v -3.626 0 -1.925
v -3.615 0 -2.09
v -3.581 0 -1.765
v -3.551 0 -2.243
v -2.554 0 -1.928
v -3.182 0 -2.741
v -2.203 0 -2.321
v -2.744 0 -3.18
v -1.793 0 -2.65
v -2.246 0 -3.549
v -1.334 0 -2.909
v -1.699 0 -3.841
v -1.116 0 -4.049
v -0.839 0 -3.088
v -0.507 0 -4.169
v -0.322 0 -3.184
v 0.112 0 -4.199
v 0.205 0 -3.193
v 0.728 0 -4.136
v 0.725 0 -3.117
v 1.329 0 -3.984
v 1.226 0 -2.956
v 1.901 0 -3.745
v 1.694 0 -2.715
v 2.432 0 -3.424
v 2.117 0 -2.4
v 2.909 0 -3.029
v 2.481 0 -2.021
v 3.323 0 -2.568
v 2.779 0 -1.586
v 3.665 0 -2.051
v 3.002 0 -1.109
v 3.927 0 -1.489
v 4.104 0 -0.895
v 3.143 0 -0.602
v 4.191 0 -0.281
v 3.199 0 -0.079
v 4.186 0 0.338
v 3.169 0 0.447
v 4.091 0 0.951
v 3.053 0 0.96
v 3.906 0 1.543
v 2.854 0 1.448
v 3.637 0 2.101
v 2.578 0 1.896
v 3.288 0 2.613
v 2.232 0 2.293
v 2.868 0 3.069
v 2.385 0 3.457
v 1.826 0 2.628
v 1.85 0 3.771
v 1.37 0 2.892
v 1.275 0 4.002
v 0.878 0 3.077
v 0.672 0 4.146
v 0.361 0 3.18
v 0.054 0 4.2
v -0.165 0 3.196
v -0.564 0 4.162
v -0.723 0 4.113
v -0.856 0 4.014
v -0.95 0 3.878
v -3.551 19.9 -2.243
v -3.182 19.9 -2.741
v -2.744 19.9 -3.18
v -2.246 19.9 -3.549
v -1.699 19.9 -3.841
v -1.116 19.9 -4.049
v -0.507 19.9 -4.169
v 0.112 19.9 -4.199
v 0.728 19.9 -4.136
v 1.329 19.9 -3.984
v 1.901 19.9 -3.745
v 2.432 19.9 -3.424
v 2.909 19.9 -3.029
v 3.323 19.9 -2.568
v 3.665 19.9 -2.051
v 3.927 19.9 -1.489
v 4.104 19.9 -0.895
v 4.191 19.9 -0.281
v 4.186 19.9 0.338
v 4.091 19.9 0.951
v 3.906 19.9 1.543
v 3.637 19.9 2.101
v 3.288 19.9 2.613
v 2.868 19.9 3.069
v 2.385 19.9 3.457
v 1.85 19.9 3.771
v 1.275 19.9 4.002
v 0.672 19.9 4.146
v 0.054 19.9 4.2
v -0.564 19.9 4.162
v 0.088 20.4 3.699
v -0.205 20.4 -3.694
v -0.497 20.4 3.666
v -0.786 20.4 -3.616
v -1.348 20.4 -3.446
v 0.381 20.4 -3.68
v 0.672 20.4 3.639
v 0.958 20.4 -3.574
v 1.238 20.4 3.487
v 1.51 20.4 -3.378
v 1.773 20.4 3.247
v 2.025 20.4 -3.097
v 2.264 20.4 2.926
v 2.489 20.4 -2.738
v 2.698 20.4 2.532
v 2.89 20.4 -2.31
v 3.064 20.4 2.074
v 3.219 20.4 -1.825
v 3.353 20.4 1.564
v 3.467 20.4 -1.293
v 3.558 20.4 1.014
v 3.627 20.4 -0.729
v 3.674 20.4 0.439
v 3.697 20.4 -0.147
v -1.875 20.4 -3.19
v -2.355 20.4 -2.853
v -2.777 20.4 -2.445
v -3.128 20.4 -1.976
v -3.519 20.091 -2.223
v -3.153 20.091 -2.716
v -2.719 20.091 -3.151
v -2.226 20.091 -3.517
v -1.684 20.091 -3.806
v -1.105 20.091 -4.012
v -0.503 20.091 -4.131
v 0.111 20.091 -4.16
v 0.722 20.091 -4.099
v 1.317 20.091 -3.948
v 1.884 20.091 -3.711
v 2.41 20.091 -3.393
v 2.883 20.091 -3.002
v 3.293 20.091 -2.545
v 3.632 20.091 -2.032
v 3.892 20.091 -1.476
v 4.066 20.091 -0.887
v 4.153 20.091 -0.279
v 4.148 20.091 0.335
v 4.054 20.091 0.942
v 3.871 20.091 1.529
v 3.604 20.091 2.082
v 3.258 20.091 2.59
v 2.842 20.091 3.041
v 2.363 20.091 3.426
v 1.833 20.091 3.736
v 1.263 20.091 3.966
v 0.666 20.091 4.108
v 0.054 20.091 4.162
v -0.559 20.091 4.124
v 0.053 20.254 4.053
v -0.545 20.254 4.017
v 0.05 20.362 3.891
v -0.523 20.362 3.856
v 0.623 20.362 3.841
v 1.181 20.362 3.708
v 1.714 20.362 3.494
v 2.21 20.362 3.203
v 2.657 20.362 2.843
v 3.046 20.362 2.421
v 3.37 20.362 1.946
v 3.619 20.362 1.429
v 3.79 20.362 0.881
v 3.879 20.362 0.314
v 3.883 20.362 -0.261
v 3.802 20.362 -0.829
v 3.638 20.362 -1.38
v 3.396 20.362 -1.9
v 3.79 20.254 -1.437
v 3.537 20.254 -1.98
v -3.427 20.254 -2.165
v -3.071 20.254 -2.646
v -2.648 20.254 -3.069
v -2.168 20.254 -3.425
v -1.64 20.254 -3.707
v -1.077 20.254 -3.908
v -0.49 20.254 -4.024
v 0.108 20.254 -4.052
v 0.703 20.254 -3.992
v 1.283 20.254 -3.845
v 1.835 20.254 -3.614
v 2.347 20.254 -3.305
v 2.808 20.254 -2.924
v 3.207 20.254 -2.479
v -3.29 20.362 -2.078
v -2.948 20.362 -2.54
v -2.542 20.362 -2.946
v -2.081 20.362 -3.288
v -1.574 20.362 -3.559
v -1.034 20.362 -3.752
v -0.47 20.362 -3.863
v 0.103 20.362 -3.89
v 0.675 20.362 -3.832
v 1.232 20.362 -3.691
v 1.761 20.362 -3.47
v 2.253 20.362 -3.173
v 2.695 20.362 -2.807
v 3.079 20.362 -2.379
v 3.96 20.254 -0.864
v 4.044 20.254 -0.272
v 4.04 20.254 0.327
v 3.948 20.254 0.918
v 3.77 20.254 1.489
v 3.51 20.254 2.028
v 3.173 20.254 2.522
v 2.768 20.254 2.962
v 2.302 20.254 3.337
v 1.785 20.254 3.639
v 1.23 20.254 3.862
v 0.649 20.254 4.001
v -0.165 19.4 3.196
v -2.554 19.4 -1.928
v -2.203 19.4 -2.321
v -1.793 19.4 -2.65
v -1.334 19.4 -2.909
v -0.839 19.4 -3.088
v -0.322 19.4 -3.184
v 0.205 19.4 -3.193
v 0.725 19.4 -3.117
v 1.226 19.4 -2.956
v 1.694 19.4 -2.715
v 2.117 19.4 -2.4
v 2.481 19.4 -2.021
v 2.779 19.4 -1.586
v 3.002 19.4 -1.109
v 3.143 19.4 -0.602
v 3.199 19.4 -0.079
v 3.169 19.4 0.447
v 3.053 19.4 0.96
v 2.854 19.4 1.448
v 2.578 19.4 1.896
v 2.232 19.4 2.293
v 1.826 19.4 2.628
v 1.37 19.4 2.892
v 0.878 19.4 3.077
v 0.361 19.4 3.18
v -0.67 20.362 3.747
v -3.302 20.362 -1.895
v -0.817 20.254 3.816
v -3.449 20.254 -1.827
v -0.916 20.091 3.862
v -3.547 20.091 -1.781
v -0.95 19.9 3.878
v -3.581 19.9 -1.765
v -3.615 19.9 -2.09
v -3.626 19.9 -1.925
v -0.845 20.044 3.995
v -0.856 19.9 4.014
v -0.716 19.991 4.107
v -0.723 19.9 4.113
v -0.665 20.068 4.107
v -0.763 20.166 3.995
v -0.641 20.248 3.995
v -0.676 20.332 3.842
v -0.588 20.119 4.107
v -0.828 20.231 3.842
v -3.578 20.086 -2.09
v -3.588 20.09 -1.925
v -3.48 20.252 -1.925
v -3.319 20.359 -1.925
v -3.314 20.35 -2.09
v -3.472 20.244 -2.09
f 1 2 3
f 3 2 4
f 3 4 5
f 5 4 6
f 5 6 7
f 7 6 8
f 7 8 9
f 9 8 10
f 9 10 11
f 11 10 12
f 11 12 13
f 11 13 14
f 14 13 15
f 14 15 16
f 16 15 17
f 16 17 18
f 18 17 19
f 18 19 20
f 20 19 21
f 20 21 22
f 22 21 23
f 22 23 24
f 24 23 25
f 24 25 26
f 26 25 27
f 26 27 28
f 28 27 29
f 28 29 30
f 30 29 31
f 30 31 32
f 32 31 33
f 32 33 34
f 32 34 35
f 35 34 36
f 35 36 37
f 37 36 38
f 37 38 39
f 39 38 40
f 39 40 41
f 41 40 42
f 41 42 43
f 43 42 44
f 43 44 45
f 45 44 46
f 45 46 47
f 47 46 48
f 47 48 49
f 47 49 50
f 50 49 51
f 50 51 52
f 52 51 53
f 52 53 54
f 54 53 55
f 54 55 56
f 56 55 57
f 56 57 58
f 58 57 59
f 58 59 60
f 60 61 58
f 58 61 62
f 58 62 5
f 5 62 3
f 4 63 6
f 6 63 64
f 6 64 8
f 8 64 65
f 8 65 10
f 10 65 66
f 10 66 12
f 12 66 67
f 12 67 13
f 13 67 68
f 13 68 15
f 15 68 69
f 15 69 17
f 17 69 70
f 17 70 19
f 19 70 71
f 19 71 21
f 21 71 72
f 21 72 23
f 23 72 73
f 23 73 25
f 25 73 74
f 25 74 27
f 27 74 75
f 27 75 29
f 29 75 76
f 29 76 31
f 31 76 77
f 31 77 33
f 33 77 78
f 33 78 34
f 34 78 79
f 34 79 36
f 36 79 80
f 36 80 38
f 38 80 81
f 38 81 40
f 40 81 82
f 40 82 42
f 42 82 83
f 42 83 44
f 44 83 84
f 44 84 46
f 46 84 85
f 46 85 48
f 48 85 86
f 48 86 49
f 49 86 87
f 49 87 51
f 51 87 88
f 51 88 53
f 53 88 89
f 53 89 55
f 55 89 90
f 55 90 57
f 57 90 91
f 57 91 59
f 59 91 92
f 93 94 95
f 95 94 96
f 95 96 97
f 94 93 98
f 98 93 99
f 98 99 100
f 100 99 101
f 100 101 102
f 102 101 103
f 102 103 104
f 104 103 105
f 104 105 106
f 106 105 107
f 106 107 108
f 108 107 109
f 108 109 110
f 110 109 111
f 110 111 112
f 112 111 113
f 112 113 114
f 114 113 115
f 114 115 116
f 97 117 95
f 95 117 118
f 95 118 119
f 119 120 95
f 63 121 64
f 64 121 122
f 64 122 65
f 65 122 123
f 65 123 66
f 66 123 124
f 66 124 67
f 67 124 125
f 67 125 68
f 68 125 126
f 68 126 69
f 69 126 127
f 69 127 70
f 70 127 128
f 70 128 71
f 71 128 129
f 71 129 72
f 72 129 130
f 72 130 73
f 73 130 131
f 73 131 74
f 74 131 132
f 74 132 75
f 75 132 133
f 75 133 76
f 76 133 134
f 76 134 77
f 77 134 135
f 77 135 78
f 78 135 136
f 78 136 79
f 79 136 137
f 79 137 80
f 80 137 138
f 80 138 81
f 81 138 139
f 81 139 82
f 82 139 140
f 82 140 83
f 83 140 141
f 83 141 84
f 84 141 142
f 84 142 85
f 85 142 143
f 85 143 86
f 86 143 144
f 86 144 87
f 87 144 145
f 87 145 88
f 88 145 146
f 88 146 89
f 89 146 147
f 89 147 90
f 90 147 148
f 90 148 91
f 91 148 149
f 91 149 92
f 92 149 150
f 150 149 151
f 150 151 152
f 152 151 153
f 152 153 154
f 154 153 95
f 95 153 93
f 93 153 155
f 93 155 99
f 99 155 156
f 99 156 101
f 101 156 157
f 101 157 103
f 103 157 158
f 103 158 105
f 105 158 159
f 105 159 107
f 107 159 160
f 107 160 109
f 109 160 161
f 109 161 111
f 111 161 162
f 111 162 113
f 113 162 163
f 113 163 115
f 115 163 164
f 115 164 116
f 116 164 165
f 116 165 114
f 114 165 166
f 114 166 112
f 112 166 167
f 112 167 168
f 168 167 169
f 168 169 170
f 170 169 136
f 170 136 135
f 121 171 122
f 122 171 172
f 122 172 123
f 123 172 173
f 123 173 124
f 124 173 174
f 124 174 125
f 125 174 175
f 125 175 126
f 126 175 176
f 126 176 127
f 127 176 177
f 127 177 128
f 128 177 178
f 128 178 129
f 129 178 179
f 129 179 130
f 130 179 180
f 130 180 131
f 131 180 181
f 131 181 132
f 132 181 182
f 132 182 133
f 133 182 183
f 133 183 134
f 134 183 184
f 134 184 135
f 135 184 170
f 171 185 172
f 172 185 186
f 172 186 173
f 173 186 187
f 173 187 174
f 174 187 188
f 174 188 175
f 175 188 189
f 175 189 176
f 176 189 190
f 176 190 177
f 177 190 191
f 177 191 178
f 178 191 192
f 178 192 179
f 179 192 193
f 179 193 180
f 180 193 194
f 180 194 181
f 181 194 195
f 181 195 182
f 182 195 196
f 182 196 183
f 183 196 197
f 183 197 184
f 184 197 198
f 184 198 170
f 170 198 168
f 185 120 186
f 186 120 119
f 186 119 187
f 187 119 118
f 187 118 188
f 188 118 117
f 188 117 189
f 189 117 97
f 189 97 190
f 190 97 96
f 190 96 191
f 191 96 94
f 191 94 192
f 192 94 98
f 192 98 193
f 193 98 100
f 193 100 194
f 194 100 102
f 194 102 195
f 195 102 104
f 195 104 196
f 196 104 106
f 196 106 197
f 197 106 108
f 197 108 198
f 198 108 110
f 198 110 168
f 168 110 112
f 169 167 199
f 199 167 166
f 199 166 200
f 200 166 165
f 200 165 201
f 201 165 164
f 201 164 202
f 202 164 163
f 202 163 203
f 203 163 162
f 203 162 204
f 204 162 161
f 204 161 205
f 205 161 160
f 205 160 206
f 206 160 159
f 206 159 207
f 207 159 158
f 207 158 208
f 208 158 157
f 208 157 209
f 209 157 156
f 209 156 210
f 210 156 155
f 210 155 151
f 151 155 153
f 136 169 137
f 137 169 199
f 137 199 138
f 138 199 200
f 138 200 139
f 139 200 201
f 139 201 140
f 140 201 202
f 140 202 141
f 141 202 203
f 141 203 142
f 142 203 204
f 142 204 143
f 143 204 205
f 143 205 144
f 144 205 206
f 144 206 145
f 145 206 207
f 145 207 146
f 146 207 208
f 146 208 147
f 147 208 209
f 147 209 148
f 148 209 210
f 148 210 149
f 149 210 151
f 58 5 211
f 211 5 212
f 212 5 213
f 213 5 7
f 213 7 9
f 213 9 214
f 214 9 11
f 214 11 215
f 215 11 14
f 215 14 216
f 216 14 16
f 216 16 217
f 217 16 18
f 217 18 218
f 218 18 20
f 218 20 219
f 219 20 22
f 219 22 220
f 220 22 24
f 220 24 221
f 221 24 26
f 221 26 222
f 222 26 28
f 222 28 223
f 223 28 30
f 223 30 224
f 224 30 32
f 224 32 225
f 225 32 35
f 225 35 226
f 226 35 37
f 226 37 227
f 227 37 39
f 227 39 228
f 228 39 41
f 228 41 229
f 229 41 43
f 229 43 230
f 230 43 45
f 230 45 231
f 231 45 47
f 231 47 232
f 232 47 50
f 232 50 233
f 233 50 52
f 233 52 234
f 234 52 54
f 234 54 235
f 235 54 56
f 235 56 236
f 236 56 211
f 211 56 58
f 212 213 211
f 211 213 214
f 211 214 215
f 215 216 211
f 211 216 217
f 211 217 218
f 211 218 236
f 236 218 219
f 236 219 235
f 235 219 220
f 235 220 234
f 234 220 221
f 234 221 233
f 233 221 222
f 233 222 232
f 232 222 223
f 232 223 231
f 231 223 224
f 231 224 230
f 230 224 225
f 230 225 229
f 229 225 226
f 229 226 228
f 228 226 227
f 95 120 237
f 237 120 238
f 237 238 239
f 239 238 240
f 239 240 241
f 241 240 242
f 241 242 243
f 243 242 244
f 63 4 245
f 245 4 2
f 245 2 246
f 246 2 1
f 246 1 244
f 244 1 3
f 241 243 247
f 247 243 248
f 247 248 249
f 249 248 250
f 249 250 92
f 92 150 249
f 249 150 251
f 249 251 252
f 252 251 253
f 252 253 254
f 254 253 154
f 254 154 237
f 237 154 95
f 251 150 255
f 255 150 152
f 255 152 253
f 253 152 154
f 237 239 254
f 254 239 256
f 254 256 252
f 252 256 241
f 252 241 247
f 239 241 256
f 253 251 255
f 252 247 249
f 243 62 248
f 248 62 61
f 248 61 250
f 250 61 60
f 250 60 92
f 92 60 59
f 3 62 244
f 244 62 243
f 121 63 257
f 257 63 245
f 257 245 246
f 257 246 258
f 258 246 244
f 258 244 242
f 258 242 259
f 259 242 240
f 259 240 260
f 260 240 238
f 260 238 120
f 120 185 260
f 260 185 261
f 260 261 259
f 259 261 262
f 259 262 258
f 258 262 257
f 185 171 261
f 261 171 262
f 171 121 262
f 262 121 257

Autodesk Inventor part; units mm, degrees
ref_plane "YZ Plane" through (0, 0, 0) normal (1, 0, 0) x (0, 1, 0)
ref_plane "XZ Plane" through (0, 0, 0) normal (0, 1, 0) x (-1, 0, 0)
ref_plane "XY Plane" through (0, 0, 0) normal (0, 0, 1) x (1, 0, 0)
sketch "Sketch1" plane through (0, 0, 0) normal (0, 1, 0) x (-1, 0, 0)
  arc A0 (0.8395, 4.1153) -> (3.6921, -2.0022) centre (0, 0) ccw
  line L0 (0, -7.6704) -> (0, 6.9519) projected
  line L1 (-7.5059, 0) -> (5.9652, 0) projected
  line L2 (3.6921, -2.0022) -> (0.8395, 4.1153)
  dimension "d2" = 8.4
  dimension "d3" = 2.5
  dimension "d4" = 25
extrude "Extrusion1" add sketch "Sketch1" along normal blind 20.4
shell "Shell1" thickness 1 removed faces 1 at (-0.173, 0, 1.1178)
fillet "Fillet1" radius 0.5 2 edges at (-2.2658, 20.4, 1.0565) (3.8065, 20.4, -1.775)
fillet "Fillet2" radius 0.5 4 edges at (-3.5246, 20.2564, -1.9963) (-0.7363, 20.2564, 3.9832) (-0.8395, 9.95, 4.1153) (-3.6921, 9.95, -2.0022)
properties part number "Poti_Verlaengerung"
